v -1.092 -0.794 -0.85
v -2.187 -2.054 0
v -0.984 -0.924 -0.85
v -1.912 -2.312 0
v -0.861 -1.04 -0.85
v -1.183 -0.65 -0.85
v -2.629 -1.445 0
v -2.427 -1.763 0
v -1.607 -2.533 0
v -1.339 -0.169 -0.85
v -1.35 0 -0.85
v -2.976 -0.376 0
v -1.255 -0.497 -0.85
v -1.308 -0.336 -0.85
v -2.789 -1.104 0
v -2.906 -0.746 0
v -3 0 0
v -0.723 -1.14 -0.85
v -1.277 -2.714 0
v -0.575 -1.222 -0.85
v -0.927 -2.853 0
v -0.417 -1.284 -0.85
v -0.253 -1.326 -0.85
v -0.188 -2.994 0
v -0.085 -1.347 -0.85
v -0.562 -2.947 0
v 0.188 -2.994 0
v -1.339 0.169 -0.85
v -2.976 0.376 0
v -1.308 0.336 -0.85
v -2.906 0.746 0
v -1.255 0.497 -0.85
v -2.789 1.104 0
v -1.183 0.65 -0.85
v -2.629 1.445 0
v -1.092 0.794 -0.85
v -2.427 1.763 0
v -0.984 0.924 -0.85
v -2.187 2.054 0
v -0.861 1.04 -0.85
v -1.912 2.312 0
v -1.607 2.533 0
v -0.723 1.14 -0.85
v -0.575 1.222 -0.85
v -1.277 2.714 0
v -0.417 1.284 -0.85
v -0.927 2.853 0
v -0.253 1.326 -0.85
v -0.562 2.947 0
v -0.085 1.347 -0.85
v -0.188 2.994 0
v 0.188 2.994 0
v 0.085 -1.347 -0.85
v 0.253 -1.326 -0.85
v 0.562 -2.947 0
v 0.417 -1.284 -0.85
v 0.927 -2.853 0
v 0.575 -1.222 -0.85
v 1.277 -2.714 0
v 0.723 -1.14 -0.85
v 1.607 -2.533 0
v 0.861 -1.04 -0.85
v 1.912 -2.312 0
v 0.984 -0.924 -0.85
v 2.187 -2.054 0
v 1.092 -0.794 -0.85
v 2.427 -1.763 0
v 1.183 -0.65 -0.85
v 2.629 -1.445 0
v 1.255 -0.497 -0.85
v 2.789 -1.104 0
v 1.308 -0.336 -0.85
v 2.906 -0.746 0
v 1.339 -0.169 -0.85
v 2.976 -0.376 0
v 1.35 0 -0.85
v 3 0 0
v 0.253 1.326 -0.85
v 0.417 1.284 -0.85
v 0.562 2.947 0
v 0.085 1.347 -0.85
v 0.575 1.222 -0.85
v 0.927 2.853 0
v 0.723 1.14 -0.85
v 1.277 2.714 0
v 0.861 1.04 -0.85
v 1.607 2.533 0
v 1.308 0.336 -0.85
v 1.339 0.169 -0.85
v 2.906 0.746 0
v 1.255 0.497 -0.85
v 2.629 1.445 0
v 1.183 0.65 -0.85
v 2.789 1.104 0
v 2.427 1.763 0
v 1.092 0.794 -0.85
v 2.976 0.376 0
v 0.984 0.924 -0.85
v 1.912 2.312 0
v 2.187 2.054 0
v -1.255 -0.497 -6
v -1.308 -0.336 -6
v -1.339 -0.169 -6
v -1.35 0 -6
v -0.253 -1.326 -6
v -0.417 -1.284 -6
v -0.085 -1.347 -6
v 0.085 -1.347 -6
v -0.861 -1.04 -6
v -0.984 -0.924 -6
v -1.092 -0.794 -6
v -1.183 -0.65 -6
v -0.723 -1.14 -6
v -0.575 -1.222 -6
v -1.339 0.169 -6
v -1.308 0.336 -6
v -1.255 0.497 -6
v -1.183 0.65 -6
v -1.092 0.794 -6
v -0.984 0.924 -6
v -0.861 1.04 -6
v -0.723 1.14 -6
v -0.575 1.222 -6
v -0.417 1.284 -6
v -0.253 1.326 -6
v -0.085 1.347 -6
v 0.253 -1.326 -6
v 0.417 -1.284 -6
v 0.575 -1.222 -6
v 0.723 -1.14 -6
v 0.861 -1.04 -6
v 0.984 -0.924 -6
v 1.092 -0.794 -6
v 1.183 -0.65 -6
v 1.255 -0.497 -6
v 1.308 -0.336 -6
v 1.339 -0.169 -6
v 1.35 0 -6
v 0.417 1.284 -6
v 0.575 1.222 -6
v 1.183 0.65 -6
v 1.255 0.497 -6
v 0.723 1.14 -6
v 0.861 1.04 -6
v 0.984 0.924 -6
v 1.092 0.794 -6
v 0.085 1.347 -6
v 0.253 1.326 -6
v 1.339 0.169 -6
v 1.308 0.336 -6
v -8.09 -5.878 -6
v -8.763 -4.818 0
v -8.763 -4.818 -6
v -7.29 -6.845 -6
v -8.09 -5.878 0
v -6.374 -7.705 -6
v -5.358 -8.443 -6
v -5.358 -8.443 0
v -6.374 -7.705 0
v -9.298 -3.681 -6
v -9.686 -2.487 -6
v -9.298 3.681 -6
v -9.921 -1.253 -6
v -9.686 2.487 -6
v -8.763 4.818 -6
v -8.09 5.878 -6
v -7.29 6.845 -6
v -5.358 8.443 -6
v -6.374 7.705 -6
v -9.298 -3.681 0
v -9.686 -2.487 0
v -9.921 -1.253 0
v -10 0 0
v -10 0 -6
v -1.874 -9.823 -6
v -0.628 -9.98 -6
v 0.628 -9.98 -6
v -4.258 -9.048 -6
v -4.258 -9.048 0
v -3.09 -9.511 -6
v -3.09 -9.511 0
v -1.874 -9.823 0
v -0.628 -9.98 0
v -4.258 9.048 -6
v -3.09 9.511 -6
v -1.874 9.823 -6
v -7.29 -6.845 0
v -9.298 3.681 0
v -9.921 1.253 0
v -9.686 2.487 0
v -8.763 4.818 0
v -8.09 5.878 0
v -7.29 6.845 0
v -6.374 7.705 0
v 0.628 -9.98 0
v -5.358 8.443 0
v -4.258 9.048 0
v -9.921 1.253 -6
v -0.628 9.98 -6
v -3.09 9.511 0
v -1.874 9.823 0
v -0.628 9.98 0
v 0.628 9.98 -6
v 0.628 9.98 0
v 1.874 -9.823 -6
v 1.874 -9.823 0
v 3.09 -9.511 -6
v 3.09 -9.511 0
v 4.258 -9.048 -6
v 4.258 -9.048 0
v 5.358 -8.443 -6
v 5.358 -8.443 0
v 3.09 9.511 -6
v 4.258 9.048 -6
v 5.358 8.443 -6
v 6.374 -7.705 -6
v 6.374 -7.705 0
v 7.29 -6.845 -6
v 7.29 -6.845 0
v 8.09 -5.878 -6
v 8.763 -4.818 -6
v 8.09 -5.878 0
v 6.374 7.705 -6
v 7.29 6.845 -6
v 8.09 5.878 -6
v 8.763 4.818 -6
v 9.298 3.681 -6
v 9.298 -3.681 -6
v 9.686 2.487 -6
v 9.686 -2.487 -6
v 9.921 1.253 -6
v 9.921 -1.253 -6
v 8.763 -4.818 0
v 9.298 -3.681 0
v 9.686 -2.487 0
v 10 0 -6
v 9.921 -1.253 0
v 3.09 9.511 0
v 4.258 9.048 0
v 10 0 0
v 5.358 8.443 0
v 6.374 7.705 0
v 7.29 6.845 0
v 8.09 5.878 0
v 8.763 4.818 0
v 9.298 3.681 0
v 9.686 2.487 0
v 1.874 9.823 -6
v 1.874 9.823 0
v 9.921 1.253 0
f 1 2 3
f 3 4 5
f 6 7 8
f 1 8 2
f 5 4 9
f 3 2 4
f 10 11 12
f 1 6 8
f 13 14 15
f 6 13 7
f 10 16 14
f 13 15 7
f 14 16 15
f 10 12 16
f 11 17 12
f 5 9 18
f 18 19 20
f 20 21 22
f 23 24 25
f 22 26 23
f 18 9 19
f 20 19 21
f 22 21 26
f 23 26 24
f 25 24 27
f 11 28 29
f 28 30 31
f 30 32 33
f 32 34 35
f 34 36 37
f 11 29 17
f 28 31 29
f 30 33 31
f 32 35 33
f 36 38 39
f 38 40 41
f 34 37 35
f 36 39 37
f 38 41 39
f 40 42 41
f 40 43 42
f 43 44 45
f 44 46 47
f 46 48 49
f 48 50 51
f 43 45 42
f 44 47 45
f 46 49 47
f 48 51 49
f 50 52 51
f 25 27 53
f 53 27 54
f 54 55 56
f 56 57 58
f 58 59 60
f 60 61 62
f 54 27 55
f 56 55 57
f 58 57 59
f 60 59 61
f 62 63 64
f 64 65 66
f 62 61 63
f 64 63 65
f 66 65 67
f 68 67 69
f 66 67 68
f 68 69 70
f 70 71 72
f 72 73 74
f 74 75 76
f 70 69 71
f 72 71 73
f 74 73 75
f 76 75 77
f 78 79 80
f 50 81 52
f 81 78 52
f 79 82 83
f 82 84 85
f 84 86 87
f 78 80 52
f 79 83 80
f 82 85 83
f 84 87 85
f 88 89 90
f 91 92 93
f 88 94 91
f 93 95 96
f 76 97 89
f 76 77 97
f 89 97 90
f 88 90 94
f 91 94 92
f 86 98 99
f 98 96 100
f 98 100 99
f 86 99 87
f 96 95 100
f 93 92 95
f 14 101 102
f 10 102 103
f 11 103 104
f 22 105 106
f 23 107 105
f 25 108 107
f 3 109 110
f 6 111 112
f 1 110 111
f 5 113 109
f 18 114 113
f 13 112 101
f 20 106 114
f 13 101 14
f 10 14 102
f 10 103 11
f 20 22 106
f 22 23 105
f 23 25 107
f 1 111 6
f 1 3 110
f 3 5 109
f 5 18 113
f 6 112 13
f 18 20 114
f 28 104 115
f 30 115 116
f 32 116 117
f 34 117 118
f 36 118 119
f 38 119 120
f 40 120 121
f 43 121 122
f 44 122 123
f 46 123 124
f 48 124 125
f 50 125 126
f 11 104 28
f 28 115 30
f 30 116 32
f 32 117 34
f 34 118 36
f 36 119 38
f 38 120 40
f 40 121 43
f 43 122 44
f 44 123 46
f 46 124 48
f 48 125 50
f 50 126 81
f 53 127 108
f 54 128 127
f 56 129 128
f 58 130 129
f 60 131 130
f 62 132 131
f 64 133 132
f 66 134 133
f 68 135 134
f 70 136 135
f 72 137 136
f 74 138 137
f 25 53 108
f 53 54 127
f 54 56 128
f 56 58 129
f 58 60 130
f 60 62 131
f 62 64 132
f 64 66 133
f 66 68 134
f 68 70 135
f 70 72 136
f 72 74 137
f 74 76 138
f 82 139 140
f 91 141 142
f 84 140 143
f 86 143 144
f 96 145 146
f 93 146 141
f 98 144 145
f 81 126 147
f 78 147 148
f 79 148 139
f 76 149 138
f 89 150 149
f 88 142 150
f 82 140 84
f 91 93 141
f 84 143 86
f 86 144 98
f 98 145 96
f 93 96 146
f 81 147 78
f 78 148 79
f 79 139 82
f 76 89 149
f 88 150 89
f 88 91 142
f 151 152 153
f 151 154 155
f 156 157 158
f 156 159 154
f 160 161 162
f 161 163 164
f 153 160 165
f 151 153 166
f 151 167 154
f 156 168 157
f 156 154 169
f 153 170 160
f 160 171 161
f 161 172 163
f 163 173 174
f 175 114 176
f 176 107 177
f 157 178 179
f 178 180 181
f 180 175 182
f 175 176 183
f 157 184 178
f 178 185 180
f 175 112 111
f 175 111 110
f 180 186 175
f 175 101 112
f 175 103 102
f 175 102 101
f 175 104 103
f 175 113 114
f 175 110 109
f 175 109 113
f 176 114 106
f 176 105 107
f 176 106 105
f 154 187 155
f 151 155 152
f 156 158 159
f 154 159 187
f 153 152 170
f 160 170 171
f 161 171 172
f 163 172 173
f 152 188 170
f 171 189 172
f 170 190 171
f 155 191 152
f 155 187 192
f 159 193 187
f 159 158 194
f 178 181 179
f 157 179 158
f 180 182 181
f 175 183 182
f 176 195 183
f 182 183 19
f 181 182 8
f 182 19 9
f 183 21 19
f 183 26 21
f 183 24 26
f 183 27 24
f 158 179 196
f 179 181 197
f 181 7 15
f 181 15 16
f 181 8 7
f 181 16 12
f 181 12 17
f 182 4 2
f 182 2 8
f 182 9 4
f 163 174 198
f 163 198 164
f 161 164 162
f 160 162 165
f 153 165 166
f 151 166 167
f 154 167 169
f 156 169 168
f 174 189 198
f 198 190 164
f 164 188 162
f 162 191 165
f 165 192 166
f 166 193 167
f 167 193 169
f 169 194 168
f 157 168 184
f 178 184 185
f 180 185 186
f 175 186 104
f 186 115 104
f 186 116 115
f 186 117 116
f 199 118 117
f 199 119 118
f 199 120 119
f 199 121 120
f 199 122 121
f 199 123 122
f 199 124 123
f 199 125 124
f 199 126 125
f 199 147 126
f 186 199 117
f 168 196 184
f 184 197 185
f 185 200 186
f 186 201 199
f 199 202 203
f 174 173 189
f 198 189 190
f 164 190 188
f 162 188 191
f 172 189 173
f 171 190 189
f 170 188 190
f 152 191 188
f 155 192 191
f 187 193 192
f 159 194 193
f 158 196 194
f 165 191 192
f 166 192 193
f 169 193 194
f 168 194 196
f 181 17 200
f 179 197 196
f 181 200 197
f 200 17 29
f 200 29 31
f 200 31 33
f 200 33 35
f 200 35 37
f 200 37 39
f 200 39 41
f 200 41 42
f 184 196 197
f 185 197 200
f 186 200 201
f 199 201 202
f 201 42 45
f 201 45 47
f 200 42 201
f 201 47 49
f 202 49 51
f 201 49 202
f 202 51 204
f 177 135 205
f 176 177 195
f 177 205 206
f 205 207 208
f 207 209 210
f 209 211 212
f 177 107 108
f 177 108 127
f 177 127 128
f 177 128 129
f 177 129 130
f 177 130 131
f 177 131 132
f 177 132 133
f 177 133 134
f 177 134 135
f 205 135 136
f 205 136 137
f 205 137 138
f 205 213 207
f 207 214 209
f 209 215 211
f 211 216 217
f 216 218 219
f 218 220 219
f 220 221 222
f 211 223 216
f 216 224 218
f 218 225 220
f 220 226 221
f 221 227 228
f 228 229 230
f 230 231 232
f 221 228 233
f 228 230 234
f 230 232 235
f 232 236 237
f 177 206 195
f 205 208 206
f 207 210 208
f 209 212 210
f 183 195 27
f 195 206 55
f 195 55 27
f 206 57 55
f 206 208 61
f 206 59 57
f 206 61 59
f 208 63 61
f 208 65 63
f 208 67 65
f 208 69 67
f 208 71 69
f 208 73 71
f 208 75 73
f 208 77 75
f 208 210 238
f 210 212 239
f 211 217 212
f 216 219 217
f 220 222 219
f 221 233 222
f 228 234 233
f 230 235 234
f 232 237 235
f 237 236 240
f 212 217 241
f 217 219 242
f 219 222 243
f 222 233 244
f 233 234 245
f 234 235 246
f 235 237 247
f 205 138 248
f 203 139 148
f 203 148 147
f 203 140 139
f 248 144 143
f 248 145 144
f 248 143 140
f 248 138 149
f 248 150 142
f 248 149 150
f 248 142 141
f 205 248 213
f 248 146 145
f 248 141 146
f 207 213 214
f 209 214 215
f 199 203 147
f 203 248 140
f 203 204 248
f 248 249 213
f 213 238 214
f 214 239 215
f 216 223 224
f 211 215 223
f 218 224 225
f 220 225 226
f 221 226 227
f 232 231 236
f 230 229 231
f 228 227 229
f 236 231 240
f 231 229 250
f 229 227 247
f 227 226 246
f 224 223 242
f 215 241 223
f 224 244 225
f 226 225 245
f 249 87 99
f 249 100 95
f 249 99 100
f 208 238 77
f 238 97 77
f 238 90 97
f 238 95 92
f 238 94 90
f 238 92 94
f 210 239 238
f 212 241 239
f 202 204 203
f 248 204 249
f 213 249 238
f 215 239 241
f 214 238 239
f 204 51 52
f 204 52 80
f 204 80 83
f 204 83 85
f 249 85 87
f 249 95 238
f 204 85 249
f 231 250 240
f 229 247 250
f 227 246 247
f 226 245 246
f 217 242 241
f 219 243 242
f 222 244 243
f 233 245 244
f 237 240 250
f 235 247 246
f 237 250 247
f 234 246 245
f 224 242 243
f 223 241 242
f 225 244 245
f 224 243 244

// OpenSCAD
$fn = 50;


difference() {
	union() {
		translate(v = [0, 0, -6.0000000000]) {
			cylinder(h = 6, r = 10.0000000000);
		}
	}
	union() {
		translate(v = [0, 0, 0]) {
			rotate(a = [0, 0, 0]) {
				difference() {
					union() {
						translate(v = [0, 0, -9.0000000000]) {
							cylinder(h = 9, r = 1.0000000000);
						}
						translate(v = [0, 0, -0.8500000000]) {
							cylinder(h = 0.8500000000, r1 = 1.3500000000, r2 = 3.0000000000);
						}
						translate(v = [0, 0, -9.0000000000]) {
							cylinder(h = 9, r = 1.3500000000);
						}
						translate(v = [0, 0, -9.0000000000]) {
							cylinder(h = 9, r = 1.0000000000);
						}
					}
					union();
				}
			}
		}
	}
}
